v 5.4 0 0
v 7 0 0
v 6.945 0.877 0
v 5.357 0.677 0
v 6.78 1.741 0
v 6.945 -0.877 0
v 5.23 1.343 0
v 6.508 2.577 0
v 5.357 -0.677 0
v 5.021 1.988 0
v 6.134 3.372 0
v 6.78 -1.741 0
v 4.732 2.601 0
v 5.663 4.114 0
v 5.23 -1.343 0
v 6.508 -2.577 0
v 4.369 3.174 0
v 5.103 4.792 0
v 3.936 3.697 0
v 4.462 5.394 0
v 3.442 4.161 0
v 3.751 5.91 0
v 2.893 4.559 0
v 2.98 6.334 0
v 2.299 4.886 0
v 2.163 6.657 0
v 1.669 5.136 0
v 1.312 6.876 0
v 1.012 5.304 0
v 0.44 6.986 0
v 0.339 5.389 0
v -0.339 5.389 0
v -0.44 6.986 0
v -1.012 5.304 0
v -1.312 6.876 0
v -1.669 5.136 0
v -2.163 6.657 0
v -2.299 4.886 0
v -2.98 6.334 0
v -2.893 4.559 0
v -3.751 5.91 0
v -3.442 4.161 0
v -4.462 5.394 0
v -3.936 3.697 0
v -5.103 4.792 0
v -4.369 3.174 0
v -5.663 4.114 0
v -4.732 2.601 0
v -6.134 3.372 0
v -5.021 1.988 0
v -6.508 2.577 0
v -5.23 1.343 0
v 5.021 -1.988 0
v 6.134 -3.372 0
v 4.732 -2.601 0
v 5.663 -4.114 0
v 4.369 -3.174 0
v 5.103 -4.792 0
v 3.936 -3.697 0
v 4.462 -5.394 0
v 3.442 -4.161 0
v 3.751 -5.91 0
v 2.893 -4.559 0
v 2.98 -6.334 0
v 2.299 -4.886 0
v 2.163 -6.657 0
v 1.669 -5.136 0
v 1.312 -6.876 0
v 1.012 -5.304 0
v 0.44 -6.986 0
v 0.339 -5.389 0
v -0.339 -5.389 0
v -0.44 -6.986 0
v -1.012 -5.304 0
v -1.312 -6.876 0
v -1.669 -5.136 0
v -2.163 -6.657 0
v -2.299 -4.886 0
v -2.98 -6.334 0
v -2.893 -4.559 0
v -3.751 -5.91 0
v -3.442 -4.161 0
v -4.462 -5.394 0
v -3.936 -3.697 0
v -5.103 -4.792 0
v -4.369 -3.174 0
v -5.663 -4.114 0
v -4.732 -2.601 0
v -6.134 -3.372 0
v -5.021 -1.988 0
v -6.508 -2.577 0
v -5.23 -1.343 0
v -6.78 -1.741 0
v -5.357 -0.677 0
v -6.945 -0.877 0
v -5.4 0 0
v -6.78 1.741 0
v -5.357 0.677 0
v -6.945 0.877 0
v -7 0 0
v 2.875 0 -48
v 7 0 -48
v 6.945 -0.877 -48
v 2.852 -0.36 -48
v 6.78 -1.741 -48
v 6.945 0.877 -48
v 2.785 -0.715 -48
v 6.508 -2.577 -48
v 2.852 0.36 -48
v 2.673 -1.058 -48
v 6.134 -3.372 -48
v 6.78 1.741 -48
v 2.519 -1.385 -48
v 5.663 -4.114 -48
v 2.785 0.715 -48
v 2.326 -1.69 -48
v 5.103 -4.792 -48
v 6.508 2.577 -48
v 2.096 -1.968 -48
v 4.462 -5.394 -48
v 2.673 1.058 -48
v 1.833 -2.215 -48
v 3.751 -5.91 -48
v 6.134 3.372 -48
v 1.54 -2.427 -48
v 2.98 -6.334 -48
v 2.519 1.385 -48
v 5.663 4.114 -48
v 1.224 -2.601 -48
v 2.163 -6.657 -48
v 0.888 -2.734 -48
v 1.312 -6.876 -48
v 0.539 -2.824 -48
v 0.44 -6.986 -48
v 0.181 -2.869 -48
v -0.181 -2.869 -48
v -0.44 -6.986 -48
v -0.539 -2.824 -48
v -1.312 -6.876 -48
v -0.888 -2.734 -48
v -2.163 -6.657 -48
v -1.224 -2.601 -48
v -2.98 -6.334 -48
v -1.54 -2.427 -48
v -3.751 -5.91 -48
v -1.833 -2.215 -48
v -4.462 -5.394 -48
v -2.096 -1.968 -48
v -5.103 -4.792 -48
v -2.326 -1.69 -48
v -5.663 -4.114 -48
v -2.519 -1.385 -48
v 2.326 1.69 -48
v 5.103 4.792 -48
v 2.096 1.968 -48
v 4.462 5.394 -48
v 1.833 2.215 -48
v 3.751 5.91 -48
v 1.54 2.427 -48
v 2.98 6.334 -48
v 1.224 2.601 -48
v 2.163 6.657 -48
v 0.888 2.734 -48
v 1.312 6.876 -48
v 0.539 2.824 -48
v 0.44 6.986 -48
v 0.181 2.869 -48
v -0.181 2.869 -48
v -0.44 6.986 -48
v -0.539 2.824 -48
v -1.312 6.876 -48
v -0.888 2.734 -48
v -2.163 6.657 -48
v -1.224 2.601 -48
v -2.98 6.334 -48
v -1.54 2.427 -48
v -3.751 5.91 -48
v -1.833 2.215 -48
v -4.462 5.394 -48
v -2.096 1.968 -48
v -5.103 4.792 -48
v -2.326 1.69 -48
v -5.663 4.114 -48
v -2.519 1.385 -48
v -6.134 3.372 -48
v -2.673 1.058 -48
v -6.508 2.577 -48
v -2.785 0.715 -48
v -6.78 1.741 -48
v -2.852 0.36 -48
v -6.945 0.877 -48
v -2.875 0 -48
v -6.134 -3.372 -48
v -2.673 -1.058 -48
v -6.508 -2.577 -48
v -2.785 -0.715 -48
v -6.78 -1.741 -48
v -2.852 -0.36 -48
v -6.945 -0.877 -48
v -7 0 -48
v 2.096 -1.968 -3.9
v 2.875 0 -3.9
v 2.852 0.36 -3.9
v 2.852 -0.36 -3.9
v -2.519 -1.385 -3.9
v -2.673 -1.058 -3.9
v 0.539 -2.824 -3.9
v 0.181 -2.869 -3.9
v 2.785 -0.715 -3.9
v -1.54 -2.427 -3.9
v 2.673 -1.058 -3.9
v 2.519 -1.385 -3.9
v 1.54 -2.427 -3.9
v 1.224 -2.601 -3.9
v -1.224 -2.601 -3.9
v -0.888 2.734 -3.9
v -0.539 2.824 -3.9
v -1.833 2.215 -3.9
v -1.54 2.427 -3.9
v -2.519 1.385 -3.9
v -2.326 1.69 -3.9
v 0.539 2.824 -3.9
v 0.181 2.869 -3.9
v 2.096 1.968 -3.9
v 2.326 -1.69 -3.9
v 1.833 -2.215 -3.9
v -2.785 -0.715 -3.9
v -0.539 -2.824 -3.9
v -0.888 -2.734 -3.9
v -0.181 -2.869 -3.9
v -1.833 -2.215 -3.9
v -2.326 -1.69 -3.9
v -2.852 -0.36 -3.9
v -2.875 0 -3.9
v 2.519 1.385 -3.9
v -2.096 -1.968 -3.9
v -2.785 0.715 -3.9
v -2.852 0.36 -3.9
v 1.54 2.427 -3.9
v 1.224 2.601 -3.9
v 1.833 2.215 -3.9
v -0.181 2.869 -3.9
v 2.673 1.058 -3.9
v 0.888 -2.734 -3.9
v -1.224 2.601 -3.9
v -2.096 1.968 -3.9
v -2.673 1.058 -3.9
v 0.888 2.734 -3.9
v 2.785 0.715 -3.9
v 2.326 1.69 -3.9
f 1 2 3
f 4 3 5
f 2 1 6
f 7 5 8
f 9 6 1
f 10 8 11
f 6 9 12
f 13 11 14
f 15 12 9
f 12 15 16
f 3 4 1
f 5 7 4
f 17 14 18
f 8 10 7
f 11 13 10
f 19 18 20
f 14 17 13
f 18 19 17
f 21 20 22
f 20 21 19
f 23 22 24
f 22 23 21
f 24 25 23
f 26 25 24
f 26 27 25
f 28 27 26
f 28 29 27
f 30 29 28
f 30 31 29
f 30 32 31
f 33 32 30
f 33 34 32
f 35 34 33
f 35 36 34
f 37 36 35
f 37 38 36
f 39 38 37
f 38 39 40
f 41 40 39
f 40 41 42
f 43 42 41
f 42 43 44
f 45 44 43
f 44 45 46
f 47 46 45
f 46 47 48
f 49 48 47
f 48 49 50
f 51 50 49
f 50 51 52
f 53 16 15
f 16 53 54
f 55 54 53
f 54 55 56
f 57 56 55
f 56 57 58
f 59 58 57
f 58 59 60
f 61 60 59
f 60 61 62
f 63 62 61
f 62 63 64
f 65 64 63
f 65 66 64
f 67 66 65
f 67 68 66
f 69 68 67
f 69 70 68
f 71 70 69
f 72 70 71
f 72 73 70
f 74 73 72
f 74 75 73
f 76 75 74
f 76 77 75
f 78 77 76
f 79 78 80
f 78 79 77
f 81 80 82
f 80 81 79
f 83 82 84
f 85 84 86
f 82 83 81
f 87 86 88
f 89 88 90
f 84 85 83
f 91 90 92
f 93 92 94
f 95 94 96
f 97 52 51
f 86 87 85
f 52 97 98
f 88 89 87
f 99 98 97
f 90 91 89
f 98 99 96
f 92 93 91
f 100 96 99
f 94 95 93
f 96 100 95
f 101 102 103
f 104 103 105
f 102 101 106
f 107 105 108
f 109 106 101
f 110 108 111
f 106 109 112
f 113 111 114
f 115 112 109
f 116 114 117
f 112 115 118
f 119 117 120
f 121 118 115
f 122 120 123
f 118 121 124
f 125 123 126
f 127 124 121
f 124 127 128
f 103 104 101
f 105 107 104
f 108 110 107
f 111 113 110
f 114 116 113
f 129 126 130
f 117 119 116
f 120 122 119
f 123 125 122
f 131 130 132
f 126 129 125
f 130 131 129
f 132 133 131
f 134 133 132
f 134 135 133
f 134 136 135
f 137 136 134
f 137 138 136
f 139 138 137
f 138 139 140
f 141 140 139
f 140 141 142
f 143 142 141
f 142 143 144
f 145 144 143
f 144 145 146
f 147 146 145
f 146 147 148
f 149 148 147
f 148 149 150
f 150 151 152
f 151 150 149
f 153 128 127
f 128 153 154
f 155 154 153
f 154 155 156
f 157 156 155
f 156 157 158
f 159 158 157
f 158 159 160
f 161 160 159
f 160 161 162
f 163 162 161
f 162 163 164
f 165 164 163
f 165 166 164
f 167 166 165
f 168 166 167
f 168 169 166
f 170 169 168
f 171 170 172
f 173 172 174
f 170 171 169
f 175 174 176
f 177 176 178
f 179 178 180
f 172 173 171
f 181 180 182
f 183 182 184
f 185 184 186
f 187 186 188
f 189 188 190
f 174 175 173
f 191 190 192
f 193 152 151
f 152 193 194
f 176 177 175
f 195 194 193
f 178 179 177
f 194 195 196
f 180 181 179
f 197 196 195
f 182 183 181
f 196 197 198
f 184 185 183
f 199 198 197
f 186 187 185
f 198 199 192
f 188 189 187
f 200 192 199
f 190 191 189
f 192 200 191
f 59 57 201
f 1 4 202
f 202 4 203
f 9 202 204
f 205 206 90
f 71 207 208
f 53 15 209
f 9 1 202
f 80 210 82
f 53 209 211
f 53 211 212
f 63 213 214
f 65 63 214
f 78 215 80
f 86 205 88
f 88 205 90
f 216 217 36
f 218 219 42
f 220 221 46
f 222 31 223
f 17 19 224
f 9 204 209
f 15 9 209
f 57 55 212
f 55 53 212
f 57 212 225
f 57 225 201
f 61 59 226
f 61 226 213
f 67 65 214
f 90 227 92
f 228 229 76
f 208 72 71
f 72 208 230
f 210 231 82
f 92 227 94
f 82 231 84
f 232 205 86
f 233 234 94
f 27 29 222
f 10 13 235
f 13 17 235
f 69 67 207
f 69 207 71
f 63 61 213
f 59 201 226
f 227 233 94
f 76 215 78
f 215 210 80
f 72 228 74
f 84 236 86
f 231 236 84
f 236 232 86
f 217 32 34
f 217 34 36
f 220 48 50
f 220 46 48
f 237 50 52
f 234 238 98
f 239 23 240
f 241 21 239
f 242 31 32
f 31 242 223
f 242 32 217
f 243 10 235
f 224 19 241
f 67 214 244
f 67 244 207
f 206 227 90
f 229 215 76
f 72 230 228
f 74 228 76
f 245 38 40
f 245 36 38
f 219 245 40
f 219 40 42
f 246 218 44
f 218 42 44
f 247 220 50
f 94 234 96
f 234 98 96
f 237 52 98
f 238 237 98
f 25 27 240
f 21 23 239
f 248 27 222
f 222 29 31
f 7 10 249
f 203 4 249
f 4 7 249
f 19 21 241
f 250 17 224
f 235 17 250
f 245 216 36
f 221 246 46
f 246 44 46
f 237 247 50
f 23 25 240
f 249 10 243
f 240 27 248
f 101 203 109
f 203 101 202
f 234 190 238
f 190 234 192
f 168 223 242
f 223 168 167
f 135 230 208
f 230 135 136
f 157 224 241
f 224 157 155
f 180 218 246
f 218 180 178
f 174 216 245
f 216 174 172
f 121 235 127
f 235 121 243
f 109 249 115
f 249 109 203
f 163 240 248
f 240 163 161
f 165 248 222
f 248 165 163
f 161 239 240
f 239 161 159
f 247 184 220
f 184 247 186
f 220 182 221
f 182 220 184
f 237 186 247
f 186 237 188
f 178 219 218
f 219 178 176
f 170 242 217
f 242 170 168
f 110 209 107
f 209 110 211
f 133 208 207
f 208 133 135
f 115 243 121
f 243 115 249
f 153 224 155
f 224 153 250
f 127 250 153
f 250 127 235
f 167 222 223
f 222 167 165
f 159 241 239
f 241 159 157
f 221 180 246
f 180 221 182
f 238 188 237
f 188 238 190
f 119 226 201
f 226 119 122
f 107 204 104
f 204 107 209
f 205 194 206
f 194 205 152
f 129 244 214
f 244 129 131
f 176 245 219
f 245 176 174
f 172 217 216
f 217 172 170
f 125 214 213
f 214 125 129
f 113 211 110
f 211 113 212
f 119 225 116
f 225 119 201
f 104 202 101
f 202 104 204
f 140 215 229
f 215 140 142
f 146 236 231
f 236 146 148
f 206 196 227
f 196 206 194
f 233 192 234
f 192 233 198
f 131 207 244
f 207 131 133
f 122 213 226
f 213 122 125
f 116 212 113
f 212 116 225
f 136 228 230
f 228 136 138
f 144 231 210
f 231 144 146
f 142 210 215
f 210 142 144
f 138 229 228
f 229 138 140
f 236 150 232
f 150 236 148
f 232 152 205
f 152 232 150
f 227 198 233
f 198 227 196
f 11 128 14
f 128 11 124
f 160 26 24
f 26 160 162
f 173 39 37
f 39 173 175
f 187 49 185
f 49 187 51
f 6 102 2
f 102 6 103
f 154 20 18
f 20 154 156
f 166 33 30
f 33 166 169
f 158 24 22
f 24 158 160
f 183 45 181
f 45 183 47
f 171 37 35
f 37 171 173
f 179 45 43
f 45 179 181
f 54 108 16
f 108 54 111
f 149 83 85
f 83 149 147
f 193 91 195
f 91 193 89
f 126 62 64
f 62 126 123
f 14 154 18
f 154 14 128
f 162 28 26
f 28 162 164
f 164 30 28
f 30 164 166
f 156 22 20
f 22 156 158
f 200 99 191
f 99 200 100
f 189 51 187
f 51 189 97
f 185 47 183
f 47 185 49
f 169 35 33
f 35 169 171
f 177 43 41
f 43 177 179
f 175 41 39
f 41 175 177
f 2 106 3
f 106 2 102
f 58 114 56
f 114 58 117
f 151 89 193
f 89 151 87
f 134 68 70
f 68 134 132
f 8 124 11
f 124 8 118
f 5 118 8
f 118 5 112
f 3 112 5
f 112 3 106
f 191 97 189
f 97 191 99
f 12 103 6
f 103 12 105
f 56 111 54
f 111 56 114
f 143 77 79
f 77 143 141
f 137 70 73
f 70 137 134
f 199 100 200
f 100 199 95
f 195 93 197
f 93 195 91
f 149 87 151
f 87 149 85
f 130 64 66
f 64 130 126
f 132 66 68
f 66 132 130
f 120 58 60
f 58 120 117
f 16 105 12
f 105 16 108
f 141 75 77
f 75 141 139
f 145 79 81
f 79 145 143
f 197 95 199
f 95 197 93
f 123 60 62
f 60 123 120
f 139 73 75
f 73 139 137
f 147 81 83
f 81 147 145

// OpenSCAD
$fn = 50;


difference() {
	union() {
		translate(v = [0, 0, -48.0000000000]) {
			cylinder(h = 48, r = 7.0000000000);
		}
		cylinder(h = 0, r = 16.0000000000);
	}
	union() {
		translate(v = [0, 0, 0]) {
			rotate(a = [0, 0, 0]) {
				difference() {
					union() {
						#translate(v = [0, 0, -48.0000000000]) {
							cylinder(h = 48, r = 2.6000000000);
						}
						#translate(v = [0, 0, -3.9000000000]) {
							cylinder(h = 3.9000000000, r = 7.0000000000, r1 = 2.8750000000, r2 = 5.4000000000);
						}
						#translate(v = [0, 0, -48.0000000000]) {
							cylinder(h = 48, r = 2.8750000000);
						}
						#translate(v = [0, 0, -48.0000000000]) {
							cylinder(h = 48, r = 2.6000000000);
						}
					}
					union();
				}
			}
		}
	}
}
